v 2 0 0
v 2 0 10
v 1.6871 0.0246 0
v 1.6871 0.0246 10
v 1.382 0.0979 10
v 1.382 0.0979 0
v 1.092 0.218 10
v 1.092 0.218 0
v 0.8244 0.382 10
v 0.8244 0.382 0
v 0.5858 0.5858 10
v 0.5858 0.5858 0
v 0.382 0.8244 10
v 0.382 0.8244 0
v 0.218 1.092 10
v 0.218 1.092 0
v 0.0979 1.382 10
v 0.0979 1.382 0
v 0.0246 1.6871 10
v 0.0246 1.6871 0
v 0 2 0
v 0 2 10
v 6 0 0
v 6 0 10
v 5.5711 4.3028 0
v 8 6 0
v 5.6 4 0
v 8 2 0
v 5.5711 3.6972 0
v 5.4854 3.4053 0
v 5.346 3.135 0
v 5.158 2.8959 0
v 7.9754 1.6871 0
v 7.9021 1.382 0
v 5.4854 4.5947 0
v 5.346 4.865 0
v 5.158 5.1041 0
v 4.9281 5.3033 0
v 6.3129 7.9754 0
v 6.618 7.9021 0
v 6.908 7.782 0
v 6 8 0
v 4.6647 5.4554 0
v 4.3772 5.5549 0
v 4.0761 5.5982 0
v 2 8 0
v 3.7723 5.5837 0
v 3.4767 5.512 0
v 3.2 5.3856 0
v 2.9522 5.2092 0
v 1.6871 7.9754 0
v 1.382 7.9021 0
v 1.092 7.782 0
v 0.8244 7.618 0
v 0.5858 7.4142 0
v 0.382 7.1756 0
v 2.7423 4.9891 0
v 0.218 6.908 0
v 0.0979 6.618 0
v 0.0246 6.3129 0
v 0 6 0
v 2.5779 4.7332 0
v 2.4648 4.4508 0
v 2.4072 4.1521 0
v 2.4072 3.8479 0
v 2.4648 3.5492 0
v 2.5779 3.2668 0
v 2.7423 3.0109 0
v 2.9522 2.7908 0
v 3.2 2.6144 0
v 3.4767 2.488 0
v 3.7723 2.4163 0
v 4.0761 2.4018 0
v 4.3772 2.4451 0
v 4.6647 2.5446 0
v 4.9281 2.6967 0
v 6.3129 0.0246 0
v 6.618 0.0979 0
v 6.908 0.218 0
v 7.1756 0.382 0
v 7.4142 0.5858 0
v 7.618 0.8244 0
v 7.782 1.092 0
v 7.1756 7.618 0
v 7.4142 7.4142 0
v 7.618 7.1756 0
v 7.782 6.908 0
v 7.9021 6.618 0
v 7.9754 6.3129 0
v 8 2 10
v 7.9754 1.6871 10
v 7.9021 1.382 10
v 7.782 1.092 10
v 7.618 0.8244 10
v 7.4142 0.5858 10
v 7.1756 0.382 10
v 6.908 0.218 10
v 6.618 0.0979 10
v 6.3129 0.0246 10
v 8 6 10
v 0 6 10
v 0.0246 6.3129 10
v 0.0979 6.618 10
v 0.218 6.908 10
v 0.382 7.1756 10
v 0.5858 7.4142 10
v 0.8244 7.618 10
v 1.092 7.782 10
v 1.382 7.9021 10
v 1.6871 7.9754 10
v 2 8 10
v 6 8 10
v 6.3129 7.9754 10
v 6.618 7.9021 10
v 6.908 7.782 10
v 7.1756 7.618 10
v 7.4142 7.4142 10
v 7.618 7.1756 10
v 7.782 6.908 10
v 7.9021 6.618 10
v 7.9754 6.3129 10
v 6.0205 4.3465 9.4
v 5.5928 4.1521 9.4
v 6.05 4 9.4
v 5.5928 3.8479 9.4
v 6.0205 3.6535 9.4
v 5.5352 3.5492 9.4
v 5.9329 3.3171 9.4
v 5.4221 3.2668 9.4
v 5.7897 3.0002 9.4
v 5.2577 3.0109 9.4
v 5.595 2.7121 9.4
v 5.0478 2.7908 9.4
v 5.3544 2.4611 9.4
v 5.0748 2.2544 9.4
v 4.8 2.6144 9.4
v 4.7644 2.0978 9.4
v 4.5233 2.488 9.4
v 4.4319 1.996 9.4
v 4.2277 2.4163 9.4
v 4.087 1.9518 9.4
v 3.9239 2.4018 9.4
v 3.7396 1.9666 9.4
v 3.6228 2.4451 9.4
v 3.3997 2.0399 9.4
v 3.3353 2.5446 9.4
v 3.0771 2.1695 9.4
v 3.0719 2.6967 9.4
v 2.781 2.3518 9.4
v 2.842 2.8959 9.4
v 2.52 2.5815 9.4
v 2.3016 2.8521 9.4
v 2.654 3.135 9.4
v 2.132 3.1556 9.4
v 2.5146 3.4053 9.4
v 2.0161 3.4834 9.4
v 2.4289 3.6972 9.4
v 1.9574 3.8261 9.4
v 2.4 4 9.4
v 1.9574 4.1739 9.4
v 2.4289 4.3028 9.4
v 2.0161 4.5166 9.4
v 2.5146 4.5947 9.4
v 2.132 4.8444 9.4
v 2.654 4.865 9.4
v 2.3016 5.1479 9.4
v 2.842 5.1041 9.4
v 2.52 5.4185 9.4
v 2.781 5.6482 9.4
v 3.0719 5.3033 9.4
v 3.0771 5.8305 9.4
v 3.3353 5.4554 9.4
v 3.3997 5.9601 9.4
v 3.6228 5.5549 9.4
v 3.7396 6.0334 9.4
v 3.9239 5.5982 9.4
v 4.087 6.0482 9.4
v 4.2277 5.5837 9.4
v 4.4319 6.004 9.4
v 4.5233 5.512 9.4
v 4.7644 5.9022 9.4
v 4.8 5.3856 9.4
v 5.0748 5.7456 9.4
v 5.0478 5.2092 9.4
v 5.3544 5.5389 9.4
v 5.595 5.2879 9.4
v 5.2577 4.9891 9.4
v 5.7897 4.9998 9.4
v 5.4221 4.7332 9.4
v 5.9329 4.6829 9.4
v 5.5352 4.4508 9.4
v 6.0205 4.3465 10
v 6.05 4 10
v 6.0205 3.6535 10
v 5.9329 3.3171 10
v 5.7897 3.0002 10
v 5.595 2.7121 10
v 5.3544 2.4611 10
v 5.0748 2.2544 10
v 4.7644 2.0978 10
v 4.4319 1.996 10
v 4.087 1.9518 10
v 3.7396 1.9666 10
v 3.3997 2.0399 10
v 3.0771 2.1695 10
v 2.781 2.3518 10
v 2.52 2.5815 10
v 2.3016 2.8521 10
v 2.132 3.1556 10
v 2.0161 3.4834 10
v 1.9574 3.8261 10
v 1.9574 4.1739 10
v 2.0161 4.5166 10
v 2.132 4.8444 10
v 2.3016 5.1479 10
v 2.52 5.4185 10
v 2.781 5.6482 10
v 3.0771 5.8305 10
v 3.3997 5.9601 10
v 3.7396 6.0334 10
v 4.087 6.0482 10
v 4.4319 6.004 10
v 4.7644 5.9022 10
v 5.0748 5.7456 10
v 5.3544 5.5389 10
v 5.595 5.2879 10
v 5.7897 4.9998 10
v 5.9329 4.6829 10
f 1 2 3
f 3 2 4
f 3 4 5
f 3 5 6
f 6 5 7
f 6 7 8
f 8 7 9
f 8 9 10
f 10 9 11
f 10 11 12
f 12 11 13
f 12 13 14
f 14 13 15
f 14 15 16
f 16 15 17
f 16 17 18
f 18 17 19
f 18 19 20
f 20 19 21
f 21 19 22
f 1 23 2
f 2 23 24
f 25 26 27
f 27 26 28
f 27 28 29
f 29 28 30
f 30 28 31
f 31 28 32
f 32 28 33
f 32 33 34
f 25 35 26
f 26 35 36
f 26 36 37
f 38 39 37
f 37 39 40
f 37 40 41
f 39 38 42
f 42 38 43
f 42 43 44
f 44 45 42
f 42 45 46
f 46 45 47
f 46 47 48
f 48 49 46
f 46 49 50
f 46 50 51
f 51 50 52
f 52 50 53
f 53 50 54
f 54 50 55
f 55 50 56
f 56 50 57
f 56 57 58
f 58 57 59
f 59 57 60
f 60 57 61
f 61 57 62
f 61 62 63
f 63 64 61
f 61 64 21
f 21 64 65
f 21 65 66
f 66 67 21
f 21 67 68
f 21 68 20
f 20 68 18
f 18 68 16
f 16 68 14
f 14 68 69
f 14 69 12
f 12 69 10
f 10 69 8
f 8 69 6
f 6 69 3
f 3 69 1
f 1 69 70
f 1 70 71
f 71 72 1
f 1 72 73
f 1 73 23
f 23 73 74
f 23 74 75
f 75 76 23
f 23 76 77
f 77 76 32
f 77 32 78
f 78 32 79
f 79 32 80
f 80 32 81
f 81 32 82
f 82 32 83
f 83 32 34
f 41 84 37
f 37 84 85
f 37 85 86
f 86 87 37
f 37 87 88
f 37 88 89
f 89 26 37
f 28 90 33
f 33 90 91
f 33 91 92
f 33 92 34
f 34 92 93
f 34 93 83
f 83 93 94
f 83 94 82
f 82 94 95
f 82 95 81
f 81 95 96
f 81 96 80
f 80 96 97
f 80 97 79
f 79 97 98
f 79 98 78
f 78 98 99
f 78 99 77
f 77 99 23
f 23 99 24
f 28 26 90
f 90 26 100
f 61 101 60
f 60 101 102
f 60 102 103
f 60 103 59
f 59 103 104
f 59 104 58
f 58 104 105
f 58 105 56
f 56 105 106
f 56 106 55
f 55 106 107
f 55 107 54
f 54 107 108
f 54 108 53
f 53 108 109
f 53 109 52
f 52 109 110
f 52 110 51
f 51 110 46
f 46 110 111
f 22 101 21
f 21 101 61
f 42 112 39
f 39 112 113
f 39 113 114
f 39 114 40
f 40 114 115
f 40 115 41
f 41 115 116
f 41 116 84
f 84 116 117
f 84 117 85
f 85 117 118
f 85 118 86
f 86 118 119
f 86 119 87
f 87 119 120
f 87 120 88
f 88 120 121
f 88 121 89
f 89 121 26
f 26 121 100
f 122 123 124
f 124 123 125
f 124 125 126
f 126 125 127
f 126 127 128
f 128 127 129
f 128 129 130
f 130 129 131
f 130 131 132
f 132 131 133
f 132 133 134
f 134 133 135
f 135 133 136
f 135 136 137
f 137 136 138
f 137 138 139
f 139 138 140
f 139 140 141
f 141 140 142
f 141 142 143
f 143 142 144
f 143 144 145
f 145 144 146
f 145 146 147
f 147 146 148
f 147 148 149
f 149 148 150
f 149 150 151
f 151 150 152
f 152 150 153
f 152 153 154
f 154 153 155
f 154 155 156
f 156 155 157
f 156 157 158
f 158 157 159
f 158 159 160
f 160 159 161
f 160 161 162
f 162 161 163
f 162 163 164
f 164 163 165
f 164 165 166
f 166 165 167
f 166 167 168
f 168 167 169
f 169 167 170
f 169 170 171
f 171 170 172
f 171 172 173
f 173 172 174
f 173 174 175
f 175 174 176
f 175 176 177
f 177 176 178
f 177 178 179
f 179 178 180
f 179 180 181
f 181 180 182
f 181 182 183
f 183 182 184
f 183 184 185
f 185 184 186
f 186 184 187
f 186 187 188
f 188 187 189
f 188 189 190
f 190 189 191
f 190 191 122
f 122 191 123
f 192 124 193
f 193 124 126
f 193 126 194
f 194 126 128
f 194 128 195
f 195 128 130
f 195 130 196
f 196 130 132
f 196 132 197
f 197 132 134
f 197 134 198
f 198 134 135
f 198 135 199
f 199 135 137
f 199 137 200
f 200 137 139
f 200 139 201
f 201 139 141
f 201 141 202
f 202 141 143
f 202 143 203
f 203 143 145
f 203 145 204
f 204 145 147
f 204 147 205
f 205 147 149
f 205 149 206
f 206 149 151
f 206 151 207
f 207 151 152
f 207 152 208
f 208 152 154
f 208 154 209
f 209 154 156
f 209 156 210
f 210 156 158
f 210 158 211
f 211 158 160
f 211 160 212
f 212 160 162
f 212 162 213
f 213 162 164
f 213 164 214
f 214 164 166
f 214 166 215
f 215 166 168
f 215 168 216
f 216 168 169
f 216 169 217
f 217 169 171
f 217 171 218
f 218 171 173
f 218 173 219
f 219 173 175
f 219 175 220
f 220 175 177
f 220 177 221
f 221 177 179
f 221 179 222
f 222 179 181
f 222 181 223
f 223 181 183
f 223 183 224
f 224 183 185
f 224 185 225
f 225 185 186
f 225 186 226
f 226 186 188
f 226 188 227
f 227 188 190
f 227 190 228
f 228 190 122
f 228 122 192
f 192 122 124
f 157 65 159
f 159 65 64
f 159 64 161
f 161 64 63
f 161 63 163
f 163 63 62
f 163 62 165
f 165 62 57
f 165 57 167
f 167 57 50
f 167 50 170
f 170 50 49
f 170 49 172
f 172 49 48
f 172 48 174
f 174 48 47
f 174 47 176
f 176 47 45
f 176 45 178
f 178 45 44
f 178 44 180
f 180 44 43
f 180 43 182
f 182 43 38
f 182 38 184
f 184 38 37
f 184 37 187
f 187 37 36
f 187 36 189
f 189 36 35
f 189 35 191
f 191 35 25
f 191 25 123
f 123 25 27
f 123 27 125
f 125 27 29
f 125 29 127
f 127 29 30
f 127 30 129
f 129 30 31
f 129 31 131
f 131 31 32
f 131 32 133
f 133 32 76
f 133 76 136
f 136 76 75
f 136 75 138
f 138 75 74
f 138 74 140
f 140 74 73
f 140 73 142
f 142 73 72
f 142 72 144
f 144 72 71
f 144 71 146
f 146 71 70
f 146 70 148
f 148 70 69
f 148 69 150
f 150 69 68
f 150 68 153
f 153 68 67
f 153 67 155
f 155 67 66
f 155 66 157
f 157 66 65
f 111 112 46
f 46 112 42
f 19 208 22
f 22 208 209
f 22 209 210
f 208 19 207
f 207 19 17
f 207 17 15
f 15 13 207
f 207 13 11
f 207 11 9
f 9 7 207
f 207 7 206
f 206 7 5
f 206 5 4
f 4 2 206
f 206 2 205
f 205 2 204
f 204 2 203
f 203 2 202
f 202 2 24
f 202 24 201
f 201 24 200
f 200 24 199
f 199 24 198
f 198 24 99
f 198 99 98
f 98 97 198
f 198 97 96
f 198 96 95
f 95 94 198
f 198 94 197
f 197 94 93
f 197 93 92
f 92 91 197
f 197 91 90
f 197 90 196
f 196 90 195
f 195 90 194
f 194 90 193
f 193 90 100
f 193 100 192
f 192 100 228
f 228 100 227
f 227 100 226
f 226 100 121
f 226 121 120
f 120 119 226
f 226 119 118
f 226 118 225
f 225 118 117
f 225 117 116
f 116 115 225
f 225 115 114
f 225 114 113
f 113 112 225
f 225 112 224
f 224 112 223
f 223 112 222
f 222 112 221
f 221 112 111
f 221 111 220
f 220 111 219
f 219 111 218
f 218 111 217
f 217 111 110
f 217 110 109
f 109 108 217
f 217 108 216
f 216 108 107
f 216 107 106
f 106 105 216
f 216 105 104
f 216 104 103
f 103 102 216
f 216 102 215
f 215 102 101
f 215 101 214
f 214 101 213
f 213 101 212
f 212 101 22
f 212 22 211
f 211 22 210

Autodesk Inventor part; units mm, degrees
ref_plane "YZ Plane" through (0, 0, 0) normal (1, 0, 0) x (0, 1, 0)
ref_plane "XZ Plane" through (0, 0, 0) normal (0, 1, 0) x (-1, 0, 0)
ref_plane "XY Plane" through (0, 0, 0) normal (0, 0, 1) x (1, 0, 0)
sketch "Sketch2" plane through (0, 0, 0) normal (0, 0, 1) x (1, 0, 0)
  line L0 (0, 0) -> (8, 0)
  line L1 (8, 0) -> (8, 8)
  line L2 (8, 8) -> (0, 8)
  line L3 (0, 8) -> (0, 0)
  point P0 (4, 4)
  dimension "d2" = 8
  dimension "d3" = 8
extrude "Extrusion1" add sketch "Sketch2" along normal blind 10
sketch "Sketch3" plane through (0, 0, 10) normal (0, 0, 1) x (1, 0, 0)
  point P0 (0, 0)
  point P1 (4, 4)
hole "Hole1" at (4, 4, 10) direction (0, 0, -1) diameter 3.2 depth 10 counterbore diameter 4.1 counterbore depth 0.6
fillet "Fillet1" radius 2 4 edges at (8, 8, 5) (0, 8, 5) (8, 0, 5) (0, 0, 5)
properties part number "Insert Test"
